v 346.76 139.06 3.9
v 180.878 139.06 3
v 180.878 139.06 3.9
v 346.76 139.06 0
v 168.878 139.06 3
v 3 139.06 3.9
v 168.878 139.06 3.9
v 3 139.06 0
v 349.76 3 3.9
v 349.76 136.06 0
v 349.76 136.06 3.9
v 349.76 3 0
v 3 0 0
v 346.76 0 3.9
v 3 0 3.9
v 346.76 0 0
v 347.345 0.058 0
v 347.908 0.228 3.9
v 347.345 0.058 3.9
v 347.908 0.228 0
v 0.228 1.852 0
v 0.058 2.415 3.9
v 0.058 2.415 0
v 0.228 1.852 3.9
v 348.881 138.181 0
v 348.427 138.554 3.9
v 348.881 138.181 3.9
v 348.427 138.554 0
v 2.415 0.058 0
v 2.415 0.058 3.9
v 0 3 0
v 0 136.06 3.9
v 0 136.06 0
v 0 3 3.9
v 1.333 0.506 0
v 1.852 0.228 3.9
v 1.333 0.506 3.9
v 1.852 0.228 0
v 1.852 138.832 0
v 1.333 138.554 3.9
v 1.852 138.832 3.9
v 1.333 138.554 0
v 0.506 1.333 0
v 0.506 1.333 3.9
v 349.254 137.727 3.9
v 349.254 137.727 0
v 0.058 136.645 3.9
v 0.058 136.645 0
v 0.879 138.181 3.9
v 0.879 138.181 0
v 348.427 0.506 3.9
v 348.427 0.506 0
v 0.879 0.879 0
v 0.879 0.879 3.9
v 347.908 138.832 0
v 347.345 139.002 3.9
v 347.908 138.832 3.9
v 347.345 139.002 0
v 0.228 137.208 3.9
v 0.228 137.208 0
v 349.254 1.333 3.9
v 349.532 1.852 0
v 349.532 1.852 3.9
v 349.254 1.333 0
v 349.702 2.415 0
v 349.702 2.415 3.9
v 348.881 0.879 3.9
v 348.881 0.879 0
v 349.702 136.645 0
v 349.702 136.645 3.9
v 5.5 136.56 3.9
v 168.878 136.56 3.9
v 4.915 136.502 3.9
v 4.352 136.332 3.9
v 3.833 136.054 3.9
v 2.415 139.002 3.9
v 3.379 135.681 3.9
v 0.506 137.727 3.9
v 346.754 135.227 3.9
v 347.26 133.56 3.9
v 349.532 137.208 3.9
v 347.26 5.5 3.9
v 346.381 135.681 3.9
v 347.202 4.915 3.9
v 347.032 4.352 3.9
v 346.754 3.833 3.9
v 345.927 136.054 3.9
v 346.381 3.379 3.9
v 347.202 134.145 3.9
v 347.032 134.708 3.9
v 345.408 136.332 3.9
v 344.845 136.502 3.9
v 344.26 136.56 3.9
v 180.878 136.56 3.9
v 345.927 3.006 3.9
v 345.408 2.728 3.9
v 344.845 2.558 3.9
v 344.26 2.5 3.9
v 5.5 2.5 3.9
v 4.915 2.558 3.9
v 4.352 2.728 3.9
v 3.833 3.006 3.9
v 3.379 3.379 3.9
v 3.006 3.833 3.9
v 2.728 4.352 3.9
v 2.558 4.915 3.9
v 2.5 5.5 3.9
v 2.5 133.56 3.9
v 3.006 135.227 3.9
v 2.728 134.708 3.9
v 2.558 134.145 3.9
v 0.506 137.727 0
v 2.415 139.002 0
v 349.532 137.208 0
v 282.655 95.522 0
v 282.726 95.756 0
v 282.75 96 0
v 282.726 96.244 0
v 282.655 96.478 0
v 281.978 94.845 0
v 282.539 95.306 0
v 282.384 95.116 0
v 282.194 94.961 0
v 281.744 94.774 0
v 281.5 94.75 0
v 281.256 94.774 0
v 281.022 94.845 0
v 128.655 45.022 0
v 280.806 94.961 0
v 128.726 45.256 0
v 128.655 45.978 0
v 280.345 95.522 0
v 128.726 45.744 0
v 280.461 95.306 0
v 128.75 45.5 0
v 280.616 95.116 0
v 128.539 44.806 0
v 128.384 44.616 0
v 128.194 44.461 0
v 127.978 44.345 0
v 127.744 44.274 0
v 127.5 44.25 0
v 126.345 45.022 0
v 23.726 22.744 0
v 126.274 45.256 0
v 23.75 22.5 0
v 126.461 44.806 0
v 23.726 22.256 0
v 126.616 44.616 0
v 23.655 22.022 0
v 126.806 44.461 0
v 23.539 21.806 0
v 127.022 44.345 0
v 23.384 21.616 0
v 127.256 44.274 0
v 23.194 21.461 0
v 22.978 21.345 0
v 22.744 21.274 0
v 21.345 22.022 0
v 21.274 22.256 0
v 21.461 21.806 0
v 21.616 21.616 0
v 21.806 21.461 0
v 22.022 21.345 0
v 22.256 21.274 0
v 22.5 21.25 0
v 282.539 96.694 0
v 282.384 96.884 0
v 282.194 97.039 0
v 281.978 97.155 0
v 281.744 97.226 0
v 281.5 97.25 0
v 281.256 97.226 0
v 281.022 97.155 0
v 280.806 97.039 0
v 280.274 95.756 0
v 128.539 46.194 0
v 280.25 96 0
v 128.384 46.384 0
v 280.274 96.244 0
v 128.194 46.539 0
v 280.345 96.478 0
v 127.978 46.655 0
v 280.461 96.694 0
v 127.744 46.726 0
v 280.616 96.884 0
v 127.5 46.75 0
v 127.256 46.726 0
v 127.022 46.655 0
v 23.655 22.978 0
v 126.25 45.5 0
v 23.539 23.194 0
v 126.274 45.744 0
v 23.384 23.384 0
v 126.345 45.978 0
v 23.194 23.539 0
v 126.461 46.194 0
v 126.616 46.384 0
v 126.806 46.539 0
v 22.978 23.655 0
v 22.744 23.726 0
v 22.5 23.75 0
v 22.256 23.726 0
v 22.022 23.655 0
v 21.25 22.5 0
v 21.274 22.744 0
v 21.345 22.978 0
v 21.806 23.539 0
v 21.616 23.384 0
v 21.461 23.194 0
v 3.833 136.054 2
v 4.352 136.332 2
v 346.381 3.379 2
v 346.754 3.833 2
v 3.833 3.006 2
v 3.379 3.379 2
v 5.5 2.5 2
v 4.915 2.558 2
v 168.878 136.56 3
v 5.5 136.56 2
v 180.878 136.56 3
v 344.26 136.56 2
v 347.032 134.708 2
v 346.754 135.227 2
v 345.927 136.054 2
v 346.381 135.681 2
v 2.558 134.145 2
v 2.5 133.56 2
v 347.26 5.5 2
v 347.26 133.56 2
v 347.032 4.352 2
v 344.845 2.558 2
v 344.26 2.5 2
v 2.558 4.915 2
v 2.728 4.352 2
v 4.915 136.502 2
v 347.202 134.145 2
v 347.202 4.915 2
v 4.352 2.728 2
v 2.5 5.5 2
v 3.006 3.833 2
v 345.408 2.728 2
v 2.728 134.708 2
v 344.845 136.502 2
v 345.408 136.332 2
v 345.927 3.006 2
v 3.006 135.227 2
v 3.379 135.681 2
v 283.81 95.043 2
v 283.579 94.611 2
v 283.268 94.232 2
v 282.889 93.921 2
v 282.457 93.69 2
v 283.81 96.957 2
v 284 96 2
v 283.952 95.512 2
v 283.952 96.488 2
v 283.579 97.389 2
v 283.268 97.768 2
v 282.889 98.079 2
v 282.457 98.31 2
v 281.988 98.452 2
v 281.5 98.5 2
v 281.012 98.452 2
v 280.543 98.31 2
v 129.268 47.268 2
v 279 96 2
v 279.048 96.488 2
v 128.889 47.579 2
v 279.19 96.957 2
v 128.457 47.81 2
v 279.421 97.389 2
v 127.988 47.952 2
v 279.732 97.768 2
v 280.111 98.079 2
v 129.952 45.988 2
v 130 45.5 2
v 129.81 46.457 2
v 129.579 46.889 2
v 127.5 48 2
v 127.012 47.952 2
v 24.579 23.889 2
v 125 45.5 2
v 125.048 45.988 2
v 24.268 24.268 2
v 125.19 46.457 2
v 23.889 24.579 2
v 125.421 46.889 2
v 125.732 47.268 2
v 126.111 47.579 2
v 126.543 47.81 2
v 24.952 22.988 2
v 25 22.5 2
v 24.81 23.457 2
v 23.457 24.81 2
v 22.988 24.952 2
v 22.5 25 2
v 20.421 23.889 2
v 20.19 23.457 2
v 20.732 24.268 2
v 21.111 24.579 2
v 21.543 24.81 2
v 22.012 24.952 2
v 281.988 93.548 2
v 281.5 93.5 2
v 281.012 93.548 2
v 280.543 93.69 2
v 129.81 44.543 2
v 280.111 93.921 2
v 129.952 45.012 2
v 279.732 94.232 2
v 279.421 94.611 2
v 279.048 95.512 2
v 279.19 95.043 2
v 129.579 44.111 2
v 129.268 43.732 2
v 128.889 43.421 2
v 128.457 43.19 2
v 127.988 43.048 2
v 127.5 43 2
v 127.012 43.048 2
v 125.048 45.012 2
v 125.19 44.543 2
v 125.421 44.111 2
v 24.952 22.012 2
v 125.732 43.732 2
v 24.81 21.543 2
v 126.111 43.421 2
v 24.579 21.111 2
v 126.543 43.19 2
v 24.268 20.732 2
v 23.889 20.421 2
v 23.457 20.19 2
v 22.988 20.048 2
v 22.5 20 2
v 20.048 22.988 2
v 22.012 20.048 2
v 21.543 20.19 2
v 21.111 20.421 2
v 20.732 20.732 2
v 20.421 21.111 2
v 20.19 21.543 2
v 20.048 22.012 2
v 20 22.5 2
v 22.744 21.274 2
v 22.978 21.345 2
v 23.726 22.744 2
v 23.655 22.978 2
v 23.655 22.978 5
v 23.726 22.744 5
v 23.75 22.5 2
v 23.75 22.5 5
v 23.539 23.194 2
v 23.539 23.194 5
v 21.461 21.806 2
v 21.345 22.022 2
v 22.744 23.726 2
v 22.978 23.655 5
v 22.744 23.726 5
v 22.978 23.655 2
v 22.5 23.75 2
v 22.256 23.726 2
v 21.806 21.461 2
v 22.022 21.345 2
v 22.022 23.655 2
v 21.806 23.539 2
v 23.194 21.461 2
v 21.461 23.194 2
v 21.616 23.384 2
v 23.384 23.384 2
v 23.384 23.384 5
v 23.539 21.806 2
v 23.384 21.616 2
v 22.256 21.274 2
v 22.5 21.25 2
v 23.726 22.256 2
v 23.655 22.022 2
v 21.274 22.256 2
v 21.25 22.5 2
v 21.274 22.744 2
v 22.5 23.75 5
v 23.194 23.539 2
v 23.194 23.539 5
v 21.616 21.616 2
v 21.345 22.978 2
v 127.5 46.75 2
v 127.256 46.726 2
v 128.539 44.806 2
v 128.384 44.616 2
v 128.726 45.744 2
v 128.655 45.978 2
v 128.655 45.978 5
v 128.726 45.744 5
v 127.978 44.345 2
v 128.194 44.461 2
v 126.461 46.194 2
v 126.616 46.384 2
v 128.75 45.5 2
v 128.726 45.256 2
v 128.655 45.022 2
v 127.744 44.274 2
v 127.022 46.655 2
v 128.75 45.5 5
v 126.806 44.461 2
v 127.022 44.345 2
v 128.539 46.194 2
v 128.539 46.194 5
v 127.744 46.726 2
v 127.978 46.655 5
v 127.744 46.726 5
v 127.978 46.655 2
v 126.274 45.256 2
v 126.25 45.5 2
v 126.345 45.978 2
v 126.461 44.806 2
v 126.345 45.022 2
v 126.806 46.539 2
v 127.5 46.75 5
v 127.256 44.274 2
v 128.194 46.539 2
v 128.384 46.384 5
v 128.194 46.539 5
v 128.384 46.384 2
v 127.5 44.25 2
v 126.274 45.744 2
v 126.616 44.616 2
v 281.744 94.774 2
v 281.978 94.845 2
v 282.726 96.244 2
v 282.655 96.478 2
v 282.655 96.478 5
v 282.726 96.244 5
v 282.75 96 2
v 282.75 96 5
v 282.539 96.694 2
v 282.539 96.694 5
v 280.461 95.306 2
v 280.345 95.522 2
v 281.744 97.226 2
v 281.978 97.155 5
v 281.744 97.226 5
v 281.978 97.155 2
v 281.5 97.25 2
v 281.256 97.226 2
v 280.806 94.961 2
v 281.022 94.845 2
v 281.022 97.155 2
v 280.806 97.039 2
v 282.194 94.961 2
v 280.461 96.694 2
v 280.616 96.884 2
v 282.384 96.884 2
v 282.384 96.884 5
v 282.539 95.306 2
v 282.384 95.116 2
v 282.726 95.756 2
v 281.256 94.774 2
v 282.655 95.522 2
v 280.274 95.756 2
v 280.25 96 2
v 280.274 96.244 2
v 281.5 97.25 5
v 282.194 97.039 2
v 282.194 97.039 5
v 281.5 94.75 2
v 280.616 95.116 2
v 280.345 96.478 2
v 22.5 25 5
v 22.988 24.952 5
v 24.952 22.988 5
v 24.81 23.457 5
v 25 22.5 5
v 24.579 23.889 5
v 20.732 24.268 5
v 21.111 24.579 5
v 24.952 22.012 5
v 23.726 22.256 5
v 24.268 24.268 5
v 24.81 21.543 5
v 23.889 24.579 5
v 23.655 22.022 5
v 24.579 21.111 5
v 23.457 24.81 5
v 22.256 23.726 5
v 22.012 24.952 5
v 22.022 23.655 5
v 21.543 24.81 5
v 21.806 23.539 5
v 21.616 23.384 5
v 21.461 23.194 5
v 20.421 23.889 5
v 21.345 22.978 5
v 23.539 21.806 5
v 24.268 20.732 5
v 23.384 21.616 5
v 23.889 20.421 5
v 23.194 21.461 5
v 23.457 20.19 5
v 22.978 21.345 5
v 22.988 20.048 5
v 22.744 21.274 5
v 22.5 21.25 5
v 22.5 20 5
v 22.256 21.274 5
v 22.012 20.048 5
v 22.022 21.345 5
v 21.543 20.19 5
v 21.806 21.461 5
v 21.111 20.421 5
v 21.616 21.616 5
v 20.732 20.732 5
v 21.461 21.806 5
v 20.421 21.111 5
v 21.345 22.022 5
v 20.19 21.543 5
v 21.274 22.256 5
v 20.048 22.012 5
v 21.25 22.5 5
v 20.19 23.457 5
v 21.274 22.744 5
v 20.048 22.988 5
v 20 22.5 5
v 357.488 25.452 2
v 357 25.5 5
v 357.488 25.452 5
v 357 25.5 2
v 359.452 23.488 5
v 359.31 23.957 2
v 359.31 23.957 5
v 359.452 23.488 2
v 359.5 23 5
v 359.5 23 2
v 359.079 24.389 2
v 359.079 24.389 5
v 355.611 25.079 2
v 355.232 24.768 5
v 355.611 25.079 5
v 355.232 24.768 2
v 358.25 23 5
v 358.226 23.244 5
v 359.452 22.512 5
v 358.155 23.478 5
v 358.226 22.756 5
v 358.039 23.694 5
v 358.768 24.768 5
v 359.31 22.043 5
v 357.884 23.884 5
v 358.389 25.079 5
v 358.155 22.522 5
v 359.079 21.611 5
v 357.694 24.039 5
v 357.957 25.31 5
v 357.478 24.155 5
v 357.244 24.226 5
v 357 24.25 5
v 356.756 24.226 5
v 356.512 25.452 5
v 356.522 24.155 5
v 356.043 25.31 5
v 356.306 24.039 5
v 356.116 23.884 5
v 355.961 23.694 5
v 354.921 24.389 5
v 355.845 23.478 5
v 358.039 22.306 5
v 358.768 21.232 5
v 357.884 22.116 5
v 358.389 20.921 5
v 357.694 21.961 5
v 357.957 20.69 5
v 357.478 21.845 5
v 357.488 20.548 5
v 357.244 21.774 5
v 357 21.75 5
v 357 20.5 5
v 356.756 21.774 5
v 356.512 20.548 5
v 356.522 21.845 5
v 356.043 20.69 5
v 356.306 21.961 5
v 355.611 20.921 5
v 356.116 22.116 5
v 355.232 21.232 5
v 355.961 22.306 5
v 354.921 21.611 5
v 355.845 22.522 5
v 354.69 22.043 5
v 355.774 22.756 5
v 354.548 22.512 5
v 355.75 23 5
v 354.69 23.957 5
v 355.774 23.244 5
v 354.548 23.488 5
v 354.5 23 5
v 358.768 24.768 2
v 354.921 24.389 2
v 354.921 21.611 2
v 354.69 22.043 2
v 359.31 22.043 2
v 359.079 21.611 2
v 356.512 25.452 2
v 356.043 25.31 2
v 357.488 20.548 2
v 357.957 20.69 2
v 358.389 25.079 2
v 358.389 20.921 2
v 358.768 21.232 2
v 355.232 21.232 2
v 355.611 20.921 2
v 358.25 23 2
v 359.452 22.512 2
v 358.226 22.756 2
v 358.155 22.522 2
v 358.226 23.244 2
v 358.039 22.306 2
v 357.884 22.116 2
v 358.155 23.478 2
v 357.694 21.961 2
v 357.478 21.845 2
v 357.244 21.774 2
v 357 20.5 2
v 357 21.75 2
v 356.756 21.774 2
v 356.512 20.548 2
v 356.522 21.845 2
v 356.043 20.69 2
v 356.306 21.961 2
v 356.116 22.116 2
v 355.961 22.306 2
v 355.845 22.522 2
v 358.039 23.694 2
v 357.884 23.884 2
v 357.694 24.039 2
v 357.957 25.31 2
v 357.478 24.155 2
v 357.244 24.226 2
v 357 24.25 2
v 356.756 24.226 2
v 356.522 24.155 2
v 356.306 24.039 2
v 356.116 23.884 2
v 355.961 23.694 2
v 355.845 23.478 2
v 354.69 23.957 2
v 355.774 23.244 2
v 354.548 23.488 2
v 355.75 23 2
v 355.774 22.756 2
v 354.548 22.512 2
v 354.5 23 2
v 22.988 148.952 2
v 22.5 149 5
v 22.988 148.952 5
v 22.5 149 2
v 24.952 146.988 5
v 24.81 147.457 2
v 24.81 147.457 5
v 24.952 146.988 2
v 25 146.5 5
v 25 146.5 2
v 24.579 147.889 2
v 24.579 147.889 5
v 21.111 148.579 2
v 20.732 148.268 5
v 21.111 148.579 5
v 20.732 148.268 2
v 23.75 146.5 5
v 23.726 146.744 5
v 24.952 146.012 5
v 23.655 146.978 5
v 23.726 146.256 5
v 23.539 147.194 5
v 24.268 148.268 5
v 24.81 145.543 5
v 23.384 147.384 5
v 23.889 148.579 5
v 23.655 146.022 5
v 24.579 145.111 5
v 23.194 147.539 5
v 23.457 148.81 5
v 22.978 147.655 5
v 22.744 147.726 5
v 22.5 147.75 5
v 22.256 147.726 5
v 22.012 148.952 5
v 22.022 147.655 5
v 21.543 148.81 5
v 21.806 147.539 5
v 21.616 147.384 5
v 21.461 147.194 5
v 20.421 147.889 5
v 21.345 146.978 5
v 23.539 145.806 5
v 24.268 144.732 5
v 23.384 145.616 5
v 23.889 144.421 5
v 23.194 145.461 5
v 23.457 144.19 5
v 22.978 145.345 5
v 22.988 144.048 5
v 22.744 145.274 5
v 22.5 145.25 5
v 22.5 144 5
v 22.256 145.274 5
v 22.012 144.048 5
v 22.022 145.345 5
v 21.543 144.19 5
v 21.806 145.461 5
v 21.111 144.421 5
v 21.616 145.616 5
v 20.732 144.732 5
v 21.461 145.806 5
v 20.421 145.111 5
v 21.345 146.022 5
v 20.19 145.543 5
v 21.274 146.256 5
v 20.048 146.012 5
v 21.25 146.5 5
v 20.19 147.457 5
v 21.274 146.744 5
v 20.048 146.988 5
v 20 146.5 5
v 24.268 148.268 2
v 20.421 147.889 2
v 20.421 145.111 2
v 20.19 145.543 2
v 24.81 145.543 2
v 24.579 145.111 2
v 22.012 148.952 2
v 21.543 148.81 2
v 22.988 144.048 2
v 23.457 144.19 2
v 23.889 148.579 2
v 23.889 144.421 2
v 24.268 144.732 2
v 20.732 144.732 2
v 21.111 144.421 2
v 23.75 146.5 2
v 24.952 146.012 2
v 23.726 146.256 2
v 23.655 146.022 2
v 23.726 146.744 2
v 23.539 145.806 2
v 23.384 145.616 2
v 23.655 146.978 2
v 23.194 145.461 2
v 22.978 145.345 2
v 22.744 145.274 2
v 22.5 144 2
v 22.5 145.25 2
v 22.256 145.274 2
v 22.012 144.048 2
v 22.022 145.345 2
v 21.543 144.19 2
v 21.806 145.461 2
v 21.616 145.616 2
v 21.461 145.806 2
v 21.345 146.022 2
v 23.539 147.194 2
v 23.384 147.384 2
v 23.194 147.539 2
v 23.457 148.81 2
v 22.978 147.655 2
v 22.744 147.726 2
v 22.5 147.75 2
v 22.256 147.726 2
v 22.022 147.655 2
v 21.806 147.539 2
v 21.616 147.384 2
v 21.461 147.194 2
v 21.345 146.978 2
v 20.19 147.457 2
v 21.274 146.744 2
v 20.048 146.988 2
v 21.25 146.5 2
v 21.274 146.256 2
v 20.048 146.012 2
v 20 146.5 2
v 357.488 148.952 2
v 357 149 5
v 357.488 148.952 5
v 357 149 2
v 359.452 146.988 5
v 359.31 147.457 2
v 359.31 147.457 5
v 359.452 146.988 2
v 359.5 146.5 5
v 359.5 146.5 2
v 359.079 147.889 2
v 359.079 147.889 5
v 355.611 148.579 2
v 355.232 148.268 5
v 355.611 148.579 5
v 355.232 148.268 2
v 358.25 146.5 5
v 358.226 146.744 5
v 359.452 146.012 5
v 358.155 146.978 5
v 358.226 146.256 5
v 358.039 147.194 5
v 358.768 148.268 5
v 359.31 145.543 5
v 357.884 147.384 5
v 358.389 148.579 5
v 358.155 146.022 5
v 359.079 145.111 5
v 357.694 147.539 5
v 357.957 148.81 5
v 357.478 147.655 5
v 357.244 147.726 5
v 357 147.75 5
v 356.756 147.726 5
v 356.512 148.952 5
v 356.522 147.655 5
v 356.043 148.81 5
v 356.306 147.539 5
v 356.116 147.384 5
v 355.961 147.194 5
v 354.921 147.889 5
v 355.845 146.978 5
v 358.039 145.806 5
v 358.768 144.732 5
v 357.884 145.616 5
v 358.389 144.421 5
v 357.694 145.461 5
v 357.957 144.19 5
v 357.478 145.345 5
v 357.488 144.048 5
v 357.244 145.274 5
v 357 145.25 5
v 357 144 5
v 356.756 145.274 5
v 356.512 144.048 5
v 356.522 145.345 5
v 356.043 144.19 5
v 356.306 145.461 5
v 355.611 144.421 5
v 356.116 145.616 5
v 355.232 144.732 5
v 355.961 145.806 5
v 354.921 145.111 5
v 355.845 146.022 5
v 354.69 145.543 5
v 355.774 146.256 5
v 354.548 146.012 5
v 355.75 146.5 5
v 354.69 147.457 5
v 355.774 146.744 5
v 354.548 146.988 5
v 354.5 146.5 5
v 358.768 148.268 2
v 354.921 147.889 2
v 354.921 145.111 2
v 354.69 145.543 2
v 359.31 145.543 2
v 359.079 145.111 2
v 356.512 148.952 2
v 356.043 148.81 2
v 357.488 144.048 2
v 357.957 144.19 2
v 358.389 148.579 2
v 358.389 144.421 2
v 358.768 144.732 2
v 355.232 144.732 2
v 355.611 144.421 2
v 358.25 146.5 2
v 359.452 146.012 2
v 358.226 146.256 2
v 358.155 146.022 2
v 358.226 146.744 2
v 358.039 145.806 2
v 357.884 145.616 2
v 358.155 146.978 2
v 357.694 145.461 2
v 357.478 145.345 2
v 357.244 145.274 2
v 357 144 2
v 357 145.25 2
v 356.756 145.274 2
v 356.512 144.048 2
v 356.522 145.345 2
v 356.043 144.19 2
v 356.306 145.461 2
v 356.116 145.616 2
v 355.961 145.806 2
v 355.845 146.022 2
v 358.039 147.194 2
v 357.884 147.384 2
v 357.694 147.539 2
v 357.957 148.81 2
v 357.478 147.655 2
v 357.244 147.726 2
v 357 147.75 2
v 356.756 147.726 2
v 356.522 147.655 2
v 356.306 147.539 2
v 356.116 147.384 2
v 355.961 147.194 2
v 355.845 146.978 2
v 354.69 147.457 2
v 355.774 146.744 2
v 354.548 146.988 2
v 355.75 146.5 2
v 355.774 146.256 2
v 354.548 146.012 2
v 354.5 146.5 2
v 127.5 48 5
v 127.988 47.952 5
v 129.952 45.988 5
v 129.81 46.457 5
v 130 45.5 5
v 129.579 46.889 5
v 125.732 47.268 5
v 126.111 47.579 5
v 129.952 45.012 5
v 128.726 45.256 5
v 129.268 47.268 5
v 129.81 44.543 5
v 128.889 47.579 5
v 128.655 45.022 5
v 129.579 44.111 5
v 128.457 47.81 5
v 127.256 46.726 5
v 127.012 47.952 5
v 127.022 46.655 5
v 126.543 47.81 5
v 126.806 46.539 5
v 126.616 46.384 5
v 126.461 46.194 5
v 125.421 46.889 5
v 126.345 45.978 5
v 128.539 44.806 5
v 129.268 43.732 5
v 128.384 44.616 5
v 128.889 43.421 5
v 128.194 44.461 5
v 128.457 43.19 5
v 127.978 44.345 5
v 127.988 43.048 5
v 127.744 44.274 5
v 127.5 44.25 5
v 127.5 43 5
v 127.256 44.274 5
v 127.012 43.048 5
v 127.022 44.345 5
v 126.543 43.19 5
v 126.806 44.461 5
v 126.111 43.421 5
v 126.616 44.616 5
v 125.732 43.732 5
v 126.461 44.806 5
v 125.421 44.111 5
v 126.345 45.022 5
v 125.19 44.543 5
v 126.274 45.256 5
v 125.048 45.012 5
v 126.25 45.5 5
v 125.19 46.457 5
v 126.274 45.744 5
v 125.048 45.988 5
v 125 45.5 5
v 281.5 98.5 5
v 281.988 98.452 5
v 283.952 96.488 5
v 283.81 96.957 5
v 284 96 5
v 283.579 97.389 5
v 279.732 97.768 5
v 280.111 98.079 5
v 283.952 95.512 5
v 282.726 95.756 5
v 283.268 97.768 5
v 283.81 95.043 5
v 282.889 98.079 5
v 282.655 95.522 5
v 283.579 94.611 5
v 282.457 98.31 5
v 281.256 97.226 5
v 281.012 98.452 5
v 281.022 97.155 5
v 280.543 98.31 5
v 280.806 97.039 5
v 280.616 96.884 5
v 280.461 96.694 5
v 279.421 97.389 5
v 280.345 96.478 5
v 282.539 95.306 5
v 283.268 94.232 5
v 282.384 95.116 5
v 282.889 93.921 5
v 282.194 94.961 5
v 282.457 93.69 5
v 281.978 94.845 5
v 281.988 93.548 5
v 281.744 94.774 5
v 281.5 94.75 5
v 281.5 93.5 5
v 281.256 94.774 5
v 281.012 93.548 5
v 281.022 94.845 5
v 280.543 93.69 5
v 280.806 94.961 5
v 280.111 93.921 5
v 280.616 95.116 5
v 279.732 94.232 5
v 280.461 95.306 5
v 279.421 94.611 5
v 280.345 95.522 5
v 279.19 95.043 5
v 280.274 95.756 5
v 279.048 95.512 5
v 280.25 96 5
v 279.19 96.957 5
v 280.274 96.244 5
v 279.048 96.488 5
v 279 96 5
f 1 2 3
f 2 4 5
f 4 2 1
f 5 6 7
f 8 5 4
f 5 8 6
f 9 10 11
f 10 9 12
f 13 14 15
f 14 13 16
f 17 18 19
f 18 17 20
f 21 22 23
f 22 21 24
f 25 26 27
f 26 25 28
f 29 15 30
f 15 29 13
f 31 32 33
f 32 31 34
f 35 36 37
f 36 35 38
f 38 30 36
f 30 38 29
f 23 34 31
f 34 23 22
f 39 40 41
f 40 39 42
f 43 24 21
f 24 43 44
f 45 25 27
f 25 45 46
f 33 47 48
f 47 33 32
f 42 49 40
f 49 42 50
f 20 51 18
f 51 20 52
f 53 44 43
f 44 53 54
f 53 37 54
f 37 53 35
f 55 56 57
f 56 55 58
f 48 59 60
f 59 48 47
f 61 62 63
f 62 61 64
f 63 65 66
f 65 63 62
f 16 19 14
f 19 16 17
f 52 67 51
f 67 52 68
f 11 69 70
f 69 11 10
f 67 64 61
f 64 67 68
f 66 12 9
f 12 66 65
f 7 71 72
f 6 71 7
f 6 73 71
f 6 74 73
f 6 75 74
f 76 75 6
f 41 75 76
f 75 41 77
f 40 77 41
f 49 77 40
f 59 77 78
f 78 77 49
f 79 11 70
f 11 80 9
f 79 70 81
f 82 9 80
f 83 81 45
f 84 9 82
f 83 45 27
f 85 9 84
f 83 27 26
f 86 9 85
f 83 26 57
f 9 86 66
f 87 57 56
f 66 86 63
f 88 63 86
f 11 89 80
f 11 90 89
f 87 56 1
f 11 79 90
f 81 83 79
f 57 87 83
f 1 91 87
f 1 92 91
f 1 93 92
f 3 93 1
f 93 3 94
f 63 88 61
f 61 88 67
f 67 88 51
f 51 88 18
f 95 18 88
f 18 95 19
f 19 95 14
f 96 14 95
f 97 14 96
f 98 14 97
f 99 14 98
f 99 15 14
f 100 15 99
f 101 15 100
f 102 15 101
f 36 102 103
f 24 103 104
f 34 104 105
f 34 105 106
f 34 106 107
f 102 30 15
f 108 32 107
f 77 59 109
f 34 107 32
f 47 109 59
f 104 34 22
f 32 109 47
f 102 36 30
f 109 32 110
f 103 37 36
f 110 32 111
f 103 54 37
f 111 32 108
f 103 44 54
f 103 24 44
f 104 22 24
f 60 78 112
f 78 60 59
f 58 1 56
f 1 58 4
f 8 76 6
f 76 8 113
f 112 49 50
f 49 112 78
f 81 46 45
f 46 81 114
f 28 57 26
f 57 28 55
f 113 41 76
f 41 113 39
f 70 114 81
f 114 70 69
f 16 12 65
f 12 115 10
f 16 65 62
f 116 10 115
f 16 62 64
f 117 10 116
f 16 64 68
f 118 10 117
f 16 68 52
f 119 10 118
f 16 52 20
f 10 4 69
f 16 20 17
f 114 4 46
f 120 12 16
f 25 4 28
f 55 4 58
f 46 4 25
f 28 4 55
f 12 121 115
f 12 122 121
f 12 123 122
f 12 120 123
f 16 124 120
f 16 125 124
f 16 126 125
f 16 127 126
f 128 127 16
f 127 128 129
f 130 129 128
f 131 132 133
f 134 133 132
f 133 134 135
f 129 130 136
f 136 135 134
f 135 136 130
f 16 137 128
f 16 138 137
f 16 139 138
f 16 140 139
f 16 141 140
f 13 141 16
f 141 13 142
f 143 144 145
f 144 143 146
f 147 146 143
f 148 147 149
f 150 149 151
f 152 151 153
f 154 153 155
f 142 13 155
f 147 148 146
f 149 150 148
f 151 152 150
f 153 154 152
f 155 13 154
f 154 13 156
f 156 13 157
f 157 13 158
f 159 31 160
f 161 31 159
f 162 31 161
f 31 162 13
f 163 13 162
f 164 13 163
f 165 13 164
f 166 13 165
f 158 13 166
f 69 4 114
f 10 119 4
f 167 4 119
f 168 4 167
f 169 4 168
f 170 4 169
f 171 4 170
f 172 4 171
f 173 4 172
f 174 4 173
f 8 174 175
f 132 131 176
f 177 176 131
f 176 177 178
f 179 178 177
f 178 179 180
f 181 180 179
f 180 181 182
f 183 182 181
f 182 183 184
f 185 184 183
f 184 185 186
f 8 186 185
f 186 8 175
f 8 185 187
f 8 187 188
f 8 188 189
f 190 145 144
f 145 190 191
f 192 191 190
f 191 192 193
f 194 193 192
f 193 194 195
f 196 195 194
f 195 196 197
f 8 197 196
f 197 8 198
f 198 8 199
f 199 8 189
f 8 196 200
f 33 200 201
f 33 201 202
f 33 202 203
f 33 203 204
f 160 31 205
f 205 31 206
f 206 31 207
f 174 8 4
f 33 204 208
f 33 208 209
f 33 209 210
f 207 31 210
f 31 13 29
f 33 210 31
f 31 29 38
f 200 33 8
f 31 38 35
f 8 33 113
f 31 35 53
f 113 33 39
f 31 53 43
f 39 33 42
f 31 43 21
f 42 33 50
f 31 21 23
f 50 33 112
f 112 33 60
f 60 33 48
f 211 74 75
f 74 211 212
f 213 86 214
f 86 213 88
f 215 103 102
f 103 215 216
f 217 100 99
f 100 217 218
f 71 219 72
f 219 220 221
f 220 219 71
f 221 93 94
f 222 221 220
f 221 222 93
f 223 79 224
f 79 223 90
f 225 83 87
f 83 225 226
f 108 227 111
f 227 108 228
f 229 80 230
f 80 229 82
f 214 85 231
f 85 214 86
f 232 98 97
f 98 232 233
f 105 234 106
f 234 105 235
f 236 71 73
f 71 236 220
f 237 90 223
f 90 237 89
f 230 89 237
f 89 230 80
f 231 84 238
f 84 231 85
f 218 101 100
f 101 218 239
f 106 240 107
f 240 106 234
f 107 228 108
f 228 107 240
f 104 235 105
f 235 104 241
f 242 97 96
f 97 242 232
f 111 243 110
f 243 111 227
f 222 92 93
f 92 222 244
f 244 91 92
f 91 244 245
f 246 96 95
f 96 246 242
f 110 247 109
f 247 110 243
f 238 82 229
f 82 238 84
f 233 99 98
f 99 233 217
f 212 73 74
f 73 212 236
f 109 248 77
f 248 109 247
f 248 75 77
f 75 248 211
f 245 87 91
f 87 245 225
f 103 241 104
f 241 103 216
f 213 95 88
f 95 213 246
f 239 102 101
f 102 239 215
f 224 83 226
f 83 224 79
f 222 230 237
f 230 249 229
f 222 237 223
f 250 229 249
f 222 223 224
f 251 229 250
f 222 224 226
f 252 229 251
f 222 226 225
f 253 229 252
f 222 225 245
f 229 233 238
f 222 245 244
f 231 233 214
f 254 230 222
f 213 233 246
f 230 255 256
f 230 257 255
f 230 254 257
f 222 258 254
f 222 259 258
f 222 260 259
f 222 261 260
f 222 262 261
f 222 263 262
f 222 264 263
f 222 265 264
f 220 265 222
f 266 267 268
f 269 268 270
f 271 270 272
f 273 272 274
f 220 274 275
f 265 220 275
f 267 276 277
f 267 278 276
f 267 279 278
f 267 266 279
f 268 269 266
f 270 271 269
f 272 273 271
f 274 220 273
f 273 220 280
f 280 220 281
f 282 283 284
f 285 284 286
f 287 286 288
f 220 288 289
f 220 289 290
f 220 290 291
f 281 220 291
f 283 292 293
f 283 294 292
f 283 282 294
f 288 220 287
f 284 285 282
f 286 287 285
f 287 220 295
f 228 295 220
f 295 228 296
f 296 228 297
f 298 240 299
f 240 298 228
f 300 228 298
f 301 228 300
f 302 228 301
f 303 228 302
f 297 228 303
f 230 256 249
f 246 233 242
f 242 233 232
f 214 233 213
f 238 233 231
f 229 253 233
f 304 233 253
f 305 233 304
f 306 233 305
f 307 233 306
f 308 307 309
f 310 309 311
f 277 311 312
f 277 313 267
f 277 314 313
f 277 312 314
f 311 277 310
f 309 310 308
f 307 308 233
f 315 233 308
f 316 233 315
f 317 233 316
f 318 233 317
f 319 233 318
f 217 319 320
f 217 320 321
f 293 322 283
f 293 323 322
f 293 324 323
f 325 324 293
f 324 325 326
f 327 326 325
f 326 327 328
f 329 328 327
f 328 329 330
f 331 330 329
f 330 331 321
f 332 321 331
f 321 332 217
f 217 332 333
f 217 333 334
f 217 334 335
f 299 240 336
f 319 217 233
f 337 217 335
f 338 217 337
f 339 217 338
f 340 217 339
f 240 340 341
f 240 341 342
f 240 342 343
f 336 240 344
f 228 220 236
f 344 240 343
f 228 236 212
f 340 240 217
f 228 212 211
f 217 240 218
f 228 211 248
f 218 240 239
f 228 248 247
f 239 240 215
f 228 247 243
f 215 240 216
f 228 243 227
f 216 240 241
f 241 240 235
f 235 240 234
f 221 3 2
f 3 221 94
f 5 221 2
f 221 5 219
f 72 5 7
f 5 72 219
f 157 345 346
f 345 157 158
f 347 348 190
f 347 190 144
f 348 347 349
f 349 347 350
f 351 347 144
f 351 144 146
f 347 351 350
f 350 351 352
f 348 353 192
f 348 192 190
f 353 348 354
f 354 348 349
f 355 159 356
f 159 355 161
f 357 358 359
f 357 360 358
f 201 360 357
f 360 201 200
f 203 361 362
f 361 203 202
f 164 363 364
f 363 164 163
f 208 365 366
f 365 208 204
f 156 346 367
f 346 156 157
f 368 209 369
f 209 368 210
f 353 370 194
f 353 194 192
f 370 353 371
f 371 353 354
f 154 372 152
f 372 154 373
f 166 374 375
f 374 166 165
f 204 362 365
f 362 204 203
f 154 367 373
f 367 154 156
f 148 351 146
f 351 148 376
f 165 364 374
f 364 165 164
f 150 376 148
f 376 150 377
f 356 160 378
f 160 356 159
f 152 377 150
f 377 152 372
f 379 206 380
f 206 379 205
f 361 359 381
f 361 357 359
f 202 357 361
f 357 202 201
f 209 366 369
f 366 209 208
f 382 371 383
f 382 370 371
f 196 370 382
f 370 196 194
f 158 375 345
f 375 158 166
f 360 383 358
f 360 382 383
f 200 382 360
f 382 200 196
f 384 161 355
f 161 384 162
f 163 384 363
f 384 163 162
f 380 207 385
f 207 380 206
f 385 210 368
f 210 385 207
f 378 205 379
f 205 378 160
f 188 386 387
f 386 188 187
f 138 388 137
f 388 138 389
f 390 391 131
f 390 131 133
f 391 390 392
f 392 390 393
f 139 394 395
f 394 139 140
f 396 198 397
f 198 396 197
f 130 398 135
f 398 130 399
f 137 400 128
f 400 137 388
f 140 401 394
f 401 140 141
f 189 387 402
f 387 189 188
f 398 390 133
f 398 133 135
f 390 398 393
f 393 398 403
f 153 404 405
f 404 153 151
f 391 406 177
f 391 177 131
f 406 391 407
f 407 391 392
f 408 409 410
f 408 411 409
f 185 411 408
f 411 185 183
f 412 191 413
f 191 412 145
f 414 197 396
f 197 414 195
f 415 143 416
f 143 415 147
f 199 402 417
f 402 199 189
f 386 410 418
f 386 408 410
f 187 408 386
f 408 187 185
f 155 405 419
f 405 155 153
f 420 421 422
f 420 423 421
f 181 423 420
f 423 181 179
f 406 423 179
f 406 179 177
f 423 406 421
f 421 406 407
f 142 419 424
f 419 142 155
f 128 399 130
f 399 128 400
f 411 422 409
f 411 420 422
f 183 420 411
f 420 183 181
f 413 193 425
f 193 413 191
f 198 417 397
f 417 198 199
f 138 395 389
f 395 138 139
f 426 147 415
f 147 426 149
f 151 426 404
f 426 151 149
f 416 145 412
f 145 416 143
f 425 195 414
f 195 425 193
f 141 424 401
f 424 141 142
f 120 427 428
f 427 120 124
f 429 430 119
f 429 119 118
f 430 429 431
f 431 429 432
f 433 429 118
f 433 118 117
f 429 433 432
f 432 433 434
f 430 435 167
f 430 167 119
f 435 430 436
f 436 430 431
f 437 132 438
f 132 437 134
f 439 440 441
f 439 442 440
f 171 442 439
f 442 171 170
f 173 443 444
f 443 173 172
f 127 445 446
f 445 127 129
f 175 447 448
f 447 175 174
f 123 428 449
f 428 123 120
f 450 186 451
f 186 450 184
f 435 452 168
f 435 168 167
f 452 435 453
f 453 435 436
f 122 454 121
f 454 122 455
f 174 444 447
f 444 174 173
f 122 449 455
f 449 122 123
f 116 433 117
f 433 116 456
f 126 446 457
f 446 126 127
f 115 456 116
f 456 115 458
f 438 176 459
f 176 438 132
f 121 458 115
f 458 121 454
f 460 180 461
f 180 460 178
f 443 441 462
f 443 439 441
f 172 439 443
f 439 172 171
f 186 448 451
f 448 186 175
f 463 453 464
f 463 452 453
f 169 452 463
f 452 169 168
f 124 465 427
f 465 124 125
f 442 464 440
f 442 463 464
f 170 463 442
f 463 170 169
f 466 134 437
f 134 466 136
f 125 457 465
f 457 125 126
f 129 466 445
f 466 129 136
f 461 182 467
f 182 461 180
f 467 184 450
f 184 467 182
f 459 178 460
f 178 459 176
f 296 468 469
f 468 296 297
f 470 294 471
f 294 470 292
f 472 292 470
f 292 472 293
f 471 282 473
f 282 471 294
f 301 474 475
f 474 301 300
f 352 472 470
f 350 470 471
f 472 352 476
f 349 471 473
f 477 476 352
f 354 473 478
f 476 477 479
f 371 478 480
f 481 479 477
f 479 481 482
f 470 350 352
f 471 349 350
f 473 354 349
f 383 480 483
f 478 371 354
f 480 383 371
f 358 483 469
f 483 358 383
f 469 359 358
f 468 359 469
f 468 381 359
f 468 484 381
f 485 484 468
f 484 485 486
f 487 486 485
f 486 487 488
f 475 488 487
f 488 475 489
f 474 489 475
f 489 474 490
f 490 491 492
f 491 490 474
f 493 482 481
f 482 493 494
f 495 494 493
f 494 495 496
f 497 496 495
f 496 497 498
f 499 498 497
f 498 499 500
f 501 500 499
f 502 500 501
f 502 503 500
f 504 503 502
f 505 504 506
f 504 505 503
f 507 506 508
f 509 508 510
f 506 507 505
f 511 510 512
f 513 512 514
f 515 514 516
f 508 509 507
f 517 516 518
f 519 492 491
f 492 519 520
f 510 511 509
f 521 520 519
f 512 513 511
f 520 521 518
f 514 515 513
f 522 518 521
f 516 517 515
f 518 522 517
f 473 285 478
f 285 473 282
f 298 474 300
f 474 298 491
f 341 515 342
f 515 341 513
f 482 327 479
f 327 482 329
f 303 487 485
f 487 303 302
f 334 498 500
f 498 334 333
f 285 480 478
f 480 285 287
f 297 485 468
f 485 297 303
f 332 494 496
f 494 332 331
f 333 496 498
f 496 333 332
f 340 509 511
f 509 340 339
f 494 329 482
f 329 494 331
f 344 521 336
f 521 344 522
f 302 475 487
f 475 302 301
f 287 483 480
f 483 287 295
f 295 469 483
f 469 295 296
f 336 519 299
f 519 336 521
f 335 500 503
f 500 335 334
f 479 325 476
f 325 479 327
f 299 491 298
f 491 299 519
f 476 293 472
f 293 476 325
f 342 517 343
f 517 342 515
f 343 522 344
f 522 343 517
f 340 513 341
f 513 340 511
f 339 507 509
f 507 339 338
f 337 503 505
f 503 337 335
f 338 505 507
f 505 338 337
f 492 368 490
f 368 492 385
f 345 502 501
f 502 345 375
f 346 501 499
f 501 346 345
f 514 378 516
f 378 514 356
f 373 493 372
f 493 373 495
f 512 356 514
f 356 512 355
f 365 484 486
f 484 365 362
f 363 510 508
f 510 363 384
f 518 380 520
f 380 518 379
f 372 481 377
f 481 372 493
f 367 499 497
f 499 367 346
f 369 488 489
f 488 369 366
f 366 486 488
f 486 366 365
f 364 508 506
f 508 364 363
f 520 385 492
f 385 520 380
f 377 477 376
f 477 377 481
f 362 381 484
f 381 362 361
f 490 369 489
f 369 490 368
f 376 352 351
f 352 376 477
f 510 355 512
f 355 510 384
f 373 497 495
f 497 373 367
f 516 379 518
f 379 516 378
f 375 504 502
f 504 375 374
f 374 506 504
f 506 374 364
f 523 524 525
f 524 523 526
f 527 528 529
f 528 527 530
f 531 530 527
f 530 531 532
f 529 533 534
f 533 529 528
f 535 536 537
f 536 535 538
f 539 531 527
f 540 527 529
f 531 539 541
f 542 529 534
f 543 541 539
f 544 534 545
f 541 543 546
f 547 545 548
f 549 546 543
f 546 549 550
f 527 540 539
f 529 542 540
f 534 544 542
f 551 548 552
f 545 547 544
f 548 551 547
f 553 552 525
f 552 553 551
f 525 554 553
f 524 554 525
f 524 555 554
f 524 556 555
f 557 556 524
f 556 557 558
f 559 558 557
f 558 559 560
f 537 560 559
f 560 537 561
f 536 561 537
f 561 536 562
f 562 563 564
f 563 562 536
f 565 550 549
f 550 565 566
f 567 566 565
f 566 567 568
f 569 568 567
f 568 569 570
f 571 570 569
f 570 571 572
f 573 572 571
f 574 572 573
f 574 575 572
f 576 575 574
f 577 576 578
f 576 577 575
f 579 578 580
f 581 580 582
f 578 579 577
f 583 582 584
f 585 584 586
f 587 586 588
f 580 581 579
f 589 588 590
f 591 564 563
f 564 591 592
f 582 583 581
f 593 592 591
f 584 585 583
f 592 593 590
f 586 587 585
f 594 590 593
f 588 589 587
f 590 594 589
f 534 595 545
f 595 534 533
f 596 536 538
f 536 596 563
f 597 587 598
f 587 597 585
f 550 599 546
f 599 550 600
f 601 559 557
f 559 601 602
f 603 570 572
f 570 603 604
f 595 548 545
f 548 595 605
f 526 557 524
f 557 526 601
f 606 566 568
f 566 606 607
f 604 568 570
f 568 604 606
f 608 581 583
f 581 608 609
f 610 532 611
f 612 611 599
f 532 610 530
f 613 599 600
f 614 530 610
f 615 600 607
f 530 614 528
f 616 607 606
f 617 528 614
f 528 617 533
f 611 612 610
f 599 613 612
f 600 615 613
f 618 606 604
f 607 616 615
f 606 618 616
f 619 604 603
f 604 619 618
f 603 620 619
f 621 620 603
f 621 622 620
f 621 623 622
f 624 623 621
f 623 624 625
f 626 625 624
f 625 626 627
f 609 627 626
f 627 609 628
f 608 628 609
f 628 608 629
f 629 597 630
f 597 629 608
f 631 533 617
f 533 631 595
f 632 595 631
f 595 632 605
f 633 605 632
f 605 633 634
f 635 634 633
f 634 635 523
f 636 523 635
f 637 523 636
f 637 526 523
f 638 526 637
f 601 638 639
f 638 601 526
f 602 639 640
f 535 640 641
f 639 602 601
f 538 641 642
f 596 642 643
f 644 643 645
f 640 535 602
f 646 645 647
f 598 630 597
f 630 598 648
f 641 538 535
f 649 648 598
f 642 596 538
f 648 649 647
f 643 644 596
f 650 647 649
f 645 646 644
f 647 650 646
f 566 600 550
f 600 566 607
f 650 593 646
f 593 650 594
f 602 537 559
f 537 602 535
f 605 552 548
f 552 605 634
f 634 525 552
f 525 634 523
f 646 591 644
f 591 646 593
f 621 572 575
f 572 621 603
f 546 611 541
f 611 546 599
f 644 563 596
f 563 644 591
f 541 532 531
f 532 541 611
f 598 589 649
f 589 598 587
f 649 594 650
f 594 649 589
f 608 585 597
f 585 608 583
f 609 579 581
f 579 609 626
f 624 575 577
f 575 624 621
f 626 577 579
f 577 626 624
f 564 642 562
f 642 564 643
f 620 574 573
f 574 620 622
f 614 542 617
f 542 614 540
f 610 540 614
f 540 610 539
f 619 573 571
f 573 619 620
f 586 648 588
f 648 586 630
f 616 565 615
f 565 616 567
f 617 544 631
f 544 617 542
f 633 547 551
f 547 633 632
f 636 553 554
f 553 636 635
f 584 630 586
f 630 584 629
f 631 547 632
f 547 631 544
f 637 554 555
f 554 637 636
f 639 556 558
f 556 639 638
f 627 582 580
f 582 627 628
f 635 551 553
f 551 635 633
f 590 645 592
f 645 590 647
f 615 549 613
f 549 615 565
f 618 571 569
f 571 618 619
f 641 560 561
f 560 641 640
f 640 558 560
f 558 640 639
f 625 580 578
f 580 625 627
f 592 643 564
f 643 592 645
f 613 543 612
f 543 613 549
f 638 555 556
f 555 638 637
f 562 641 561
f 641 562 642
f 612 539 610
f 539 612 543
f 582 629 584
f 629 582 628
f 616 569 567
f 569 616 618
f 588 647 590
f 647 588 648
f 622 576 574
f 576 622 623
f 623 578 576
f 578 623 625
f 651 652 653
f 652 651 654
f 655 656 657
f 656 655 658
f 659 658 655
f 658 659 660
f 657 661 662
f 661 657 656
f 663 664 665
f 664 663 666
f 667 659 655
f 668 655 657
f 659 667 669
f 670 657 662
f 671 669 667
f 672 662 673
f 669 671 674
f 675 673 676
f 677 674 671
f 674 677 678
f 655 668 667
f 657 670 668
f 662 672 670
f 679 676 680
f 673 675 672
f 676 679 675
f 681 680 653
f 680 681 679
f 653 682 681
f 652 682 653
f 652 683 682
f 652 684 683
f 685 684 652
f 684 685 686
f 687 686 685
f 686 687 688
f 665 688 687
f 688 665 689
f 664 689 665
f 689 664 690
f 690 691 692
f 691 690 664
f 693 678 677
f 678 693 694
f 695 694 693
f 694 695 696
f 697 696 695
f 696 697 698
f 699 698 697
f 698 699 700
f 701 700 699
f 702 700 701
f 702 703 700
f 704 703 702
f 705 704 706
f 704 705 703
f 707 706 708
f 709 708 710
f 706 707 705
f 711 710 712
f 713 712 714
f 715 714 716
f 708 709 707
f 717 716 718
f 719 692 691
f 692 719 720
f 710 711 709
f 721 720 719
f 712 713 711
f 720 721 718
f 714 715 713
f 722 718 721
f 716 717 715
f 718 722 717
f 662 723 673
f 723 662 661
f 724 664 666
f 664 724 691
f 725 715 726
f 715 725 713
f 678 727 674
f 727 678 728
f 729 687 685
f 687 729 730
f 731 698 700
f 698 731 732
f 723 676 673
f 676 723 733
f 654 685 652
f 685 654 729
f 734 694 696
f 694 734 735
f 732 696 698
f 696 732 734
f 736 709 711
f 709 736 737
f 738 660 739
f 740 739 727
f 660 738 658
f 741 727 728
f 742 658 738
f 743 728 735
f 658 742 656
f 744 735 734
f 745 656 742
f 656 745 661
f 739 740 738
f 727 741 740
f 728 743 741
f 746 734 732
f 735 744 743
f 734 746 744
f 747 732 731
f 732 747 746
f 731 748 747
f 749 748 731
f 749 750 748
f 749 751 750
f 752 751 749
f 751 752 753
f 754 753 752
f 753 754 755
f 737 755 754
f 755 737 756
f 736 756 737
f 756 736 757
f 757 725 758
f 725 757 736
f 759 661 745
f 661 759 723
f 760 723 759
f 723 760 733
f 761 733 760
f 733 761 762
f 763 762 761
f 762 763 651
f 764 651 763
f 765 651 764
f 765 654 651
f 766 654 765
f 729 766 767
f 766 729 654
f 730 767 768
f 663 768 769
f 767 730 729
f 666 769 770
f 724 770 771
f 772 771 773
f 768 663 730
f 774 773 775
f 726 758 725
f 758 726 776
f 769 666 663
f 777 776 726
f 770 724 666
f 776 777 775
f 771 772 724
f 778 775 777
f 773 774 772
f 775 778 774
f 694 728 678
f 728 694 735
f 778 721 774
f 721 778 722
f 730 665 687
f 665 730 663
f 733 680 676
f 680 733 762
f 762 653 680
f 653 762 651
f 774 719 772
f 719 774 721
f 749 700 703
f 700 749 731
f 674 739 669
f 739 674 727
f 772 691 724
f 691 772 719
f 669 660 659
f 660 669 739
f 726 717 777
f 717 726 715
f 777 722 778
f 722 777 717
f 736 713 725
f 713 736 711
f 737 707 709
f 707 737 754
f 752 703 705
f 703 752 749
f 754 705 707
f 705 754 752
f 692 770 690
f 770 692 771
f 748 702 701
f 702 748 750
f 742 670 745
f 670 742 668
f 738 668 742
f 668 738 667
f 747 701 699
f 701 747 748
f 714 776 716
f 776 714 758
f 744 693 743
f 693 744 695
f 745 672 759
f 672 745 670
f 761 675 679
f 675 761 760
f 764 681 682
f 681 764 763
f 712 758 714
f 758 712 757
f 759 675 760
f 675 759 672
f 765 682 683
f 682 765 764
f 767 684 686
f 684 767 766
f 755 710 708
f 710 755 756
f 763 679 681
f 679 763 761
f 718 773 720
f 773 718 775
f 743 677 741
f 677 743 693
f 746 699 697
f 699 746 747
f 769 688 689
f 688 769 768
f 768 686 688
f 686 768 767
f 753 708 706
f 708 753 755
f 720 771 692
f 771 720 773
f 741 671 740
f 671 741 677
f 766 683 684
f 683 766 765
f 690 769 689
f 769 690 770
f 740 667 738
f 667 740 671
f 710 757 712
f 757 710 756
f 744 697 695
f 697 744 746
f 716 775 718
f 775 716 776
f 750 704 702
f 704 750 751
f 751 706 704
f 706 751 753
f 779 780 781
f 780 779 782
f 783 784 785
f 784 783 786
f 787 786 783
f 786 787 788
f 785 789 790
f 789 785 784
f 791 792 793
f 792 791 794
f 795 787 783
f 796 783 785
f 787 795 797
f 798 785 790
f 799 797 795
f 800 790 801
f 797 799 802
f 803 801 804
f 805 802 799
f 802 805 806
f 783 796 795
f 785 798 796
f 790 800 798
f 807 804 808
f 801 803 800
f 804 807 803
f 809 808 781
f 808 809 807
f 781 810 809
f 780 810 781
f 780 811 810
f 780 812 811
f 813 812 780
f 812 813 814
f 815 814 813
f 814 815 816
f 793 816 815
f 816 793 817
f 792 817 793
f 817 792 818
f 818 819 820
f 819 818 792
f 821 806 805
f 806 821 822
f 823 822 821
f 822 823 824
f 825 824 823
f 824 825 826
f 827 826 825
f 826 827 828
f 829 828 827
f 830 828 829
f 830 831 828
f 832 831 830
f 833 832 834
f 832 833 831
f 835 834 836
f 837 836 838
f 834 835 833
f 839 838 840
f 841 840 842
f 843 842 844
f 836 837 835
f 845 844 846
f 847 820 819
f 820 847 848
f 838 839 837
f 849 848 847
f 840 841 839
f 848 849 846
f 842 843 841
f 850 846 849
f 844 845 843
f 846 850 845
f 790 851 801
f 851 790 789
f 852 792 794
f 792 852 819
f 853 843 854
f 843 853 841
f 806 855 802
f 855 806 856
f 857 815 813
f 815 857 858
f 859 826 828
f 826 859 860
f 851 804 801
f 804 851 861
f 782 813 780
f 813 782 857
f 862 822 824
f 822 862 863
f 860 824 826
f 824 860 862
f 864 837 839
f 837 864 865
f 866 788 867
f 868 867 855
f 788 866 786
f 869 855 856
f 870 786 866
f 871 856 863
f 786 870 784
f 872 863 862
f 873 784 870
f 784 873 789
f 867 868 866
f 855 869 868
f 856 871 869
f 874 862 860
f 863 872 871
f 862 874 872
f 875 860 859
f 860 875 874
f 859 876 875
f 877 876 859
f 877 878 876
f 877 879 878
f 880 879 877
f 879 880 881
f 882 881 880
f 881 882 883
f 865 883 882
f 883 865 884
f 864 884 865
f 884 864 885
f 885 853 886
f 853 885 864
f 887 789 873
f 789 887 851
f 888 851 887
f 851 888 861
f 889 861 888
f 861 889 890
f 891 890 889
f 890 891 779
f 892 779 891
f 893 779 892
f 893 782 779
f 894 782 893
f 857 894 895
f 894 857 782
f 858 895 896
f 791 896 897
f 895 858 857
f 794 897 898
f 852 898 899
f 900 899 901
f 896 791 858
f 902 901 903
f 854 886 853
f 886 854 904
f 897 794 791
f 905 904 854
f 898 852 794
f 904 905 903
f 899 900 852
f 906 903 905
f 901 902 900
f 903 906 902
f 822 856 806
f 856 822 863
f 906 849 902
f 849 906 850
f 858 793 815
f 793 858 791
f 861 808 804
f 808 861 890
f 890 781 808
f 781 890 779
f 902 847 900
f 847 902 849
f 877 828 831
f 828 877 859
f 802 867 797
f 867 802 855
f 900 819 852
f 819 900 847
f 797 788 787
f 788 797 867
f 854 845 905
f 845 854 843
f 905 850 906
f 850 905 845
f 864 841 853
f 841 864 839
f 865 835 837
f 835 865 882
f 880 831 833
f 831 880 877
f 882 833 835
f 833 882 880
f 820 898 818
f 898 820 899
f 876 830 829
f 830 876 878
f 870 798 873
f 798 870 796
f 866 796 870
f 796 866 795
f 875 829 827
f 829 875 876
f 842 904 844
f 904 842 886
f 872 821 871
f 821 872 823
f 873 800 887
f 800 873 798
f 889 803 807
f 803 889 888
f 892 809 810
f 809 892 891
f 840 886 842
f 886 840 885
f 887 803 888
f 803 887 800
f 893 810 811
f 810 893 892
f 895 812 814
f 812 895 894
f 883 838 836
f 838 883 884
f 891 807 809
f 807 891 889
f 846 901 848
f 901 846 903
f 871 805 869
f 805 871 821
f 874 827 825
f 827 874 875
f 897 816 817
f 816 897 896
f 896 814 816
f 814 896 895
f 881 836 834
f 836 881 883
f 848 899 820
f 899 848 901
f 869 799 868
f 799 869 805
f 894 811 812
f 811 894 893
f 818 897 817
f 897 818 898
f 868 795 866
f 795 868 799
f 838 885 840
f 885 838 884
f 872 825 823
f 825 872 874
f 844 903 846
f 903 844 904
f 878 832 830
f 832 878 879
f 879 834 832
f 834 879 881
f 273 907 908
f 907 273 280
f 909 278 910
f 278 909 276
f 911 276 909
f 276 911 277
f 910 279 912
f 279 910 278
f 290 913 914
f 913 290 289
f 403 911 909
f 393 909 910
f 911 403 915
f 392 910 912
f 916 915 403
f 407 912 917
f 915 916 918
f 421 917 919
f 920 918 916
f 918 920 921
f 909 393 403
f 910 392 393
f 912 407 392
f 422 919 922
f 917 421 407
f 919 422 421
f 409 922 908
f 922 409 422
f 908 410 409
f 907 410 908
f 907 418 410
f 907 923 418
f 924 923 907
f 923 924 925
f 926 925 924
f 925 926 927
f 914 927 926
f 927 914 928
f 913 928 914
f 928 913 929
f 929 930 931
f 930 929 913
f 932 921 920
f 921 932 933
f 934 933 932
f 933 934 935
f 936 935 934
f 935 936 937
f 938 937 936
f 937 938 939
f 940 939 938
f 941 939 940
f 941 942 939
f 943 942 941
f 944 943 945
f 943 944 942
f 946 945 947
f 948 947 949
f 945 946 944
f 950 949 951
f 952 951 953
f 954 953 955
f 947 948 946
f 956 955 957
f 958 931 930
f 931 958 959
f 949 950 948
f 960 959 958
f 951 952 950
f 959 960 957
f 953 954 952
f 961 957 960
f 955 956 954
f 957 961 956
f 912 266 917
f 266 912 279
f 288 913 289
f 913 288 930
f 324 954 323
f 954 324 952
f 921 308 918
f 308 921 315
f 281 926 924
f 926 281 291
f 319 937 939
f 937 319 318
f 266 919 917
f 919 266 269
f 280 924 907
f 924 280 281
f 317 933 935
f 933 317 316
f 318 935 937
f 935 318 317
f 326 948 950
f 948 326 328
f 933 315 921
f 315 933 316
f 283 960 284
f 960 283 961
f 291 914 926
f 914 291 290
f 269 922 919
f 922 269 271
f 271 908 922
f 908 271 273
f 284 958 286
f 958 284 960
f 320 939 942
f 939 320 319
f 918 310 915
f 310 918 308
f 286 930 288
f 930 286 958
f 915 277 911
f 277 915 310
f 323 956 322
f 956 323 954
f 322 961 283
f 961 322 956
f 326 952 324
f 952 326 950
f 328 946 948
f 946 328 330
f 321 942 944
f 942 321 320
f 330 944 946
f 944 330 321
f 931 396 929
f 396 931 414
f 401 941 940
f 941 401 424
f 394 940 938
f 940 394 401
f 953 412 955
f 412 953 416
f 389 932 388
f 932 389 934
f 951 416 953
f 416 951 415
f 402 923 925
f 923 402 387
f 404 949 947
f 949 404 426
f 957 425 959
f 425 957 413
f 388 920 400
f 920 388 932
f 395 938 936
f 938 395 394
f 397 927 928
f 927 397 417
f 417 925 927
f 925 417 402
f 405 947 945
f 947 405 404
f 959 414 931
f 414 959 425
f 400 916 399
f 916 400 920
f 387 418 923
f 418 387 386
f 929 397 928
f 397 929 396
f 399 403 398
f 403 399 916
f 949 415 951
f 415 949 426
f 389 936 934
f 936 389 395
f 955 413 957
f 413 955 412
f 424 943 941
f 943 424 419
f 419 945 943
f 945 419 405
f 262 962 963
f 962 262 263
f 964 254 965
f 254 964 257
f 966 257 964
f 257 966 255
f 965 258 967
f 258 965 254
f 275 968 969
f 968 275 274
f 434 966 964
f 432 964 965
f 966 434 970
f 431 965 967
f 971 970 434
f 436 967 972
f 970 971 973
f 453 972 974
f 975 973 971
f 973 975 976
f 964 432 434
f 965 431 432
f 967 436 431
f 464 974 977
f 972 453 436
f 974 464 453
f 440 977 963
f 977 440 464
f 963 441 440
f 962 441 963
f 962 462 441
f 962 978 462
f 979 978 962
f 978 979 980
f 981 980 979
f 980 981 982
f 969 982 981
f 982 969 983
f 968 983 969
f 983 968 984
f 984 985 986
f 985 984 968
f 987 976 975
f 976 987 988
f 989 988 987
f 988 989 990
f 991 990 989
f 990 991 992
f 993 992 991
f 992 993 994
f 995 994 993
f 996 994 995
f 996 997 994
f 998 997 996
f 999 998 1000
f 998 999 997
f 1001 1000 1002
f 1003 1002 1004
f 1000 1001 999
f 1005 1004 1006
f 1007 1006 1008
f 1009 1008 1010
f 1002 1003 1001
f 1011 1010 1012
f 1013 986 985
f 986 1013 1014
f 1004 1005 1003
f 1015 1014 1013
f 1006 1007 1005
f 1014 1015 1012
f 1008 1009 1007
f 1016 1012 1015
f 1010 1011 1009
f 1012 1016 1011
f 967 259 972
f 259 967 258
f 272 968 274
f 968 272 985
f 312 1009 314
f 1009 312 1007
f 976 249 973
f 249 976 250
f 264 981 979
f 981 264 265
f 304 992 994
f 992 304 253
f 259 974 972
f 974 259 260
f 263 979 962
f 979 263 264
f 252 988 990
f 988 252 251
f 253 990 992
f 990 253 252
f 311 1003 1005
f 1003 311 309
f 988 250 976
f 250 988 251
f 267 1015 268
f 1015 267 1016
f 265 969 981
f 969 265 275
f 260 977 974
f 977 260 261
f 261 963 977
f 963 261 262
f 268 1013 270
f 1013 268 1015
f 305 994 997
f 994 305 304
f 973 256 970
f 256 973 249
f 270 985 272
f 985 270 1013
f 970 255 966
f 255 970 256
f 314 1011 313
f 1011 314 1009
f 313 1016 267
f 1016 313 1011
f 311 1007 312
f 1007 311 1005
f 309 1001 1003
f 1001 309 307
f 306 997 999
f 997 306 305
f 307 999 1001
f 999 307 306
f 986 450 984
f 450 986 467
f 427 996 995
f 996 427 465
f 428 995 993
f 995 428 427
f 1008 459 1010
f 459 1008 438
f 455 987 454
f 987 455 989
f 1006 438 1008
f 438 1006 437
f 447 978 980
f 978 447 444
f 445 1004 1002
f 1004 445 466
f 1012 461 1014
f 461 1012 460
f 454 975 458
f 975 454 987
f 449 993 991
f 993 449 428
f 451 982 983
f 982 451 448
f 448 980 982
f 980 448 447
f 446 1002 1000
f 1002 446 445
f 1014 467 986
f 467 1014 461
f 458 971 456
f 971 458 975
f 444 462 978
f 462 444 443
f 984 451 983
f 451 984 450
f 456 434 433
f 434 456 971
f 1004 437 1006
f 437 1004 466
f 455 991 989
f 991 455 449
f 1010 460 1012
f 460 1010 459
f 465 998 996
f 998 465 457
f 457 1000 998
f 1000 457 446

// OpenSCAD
// Auto-generated keyboard case
// Layout: Blue Dream Space (86 keys)
// Switch type: choc_v2
// Front height: 3.90 mm
// Rear height: 3.90 mm
// Generated: 2026-04-08T17:00:50.330Z

$fn = 32;

wall = 2.50;
bottom_t = 2.00;
inner_h = 10.00;
outer_w = 349.76;
outer_h = 139.06;
total_h = 3.90;
front_h = 3.90;
rear_h = 3.90;
corner_r = 3.00;
plate_w = 344.76;
plate_h = 134.06;

// ----- Case shell -----
difference() {
  // Outer shell with rounded corners
  minkowski() {
    cube([outer_w - 2*corner_r, outer_h - 2*corner_r, total_h / 2]);
    translate([corner_r, corner_r, 0])
      cylinder(r = corner_r, h = total_h / 2);
  }

  // Inner cavity
  translate([wall, wall, bottom_t])
    minkowski() {
      cube([plate_w - 2*corner_r, plate_h - 2*corner_r, inner_h + 0.1]);
      translate([corner_r, corner_r, 0])
        cylinder(r = corner_r, h = 0.01);
    }

  // USB-C cutout (back edge)
  translate([168.878, 136.463, 3.000])
    cube([12.000, 2.700, 7.000]);

  // ----- Screw holes (smart placement) -----
  // screw_tl
  translate([22.500, 22.500, -0.1])
    cylinder(r = 1.250, h = bottom_t + 0.2);
  // screw_tr
  translate([357.000, 23.000, -0.1])
    cylinder(r = 1.250, h = bottom_t + 0.2);
  // screw_bl
  translate([22.500, 146.500, -0.1])
    cylinder(r = 1.250, h = bottom_t + 0.2);
  // screw_br
  translate([357.000, 146.500, -0.1])
    cylinder(r = 1.250, h = bottom_t + 0.2);
  // screw_ml
  translate([127.500, 45.500, -0.1])
    cylinder(r = 1.250, h = bottom_t + 0.2);
  // screw_mr
  translate([281.500, 96.000, -0.1])
    cylinder(r = 1.250, h = bottom_t + 0.2);
}

// ----- PCB standoff posts (no front standoffs) -----
// screw_tl
translate([22.500, 22.500, bottom_t])
  difference() {
    cylinder(r = 2.500, h = 3.000);
    translate([0, 0, -0.1])
      cylinder(r = 1.250, h = 3.200);
  }
// screw_tr
translate([357.000, 23.000, bottom_t])
  difference() {
    cylinder(r = 2.500, h = 3.000);
    translate([0, 0, -0.1])
      cylinder(r = 1.250, h = 3.200);
  }
// screw_bl
translate([22.500, 146.500, bottom_t])
  difference() {
    cylinder(r = 2.500, h = 3.000);
    translate([0, 0, -0.1])
      cylinder(r = 1.250, h = 3.200);
  }
// screw_br
translate([357.000, 146.500, bottom_t])
  difference() {
    cylinder(r = 2.500, h = 3.000);
    translate([0, 0, -0.1])
      cylinder(r = 1.250, h = 3.200);
  }
// screw_ml
translate([127.500, 45.500, bottom_t])
  difference() {
    cylinder(r = 2.500, h = 3.000);
    translate([0, 0, -0.1])
      cylinder(r = 1.250, h = 3.200);
  }
// screw_mr
translate([281.500, 96.000, bottom_t])
  difference() {
    cylinder(r = 2.500, h = 3.000);
    translate([0, 0, -0.1])
      cylinder(r = 1.250, h = 3.200);
  }

// ----- Battery compartment -----
// Recessed area in the bottom for battery
difference() {
  translate([7.500, 7.500, bottom_t])
    cube([35.000, 20.000, 0.8]);
  translate([7.500, 7.500, bottom_t - 0.1])
    cube([35.000, 20.000, 8.000]);
}
// Battery pocket (cut into bottom)
// Actual depth: 8 mm
